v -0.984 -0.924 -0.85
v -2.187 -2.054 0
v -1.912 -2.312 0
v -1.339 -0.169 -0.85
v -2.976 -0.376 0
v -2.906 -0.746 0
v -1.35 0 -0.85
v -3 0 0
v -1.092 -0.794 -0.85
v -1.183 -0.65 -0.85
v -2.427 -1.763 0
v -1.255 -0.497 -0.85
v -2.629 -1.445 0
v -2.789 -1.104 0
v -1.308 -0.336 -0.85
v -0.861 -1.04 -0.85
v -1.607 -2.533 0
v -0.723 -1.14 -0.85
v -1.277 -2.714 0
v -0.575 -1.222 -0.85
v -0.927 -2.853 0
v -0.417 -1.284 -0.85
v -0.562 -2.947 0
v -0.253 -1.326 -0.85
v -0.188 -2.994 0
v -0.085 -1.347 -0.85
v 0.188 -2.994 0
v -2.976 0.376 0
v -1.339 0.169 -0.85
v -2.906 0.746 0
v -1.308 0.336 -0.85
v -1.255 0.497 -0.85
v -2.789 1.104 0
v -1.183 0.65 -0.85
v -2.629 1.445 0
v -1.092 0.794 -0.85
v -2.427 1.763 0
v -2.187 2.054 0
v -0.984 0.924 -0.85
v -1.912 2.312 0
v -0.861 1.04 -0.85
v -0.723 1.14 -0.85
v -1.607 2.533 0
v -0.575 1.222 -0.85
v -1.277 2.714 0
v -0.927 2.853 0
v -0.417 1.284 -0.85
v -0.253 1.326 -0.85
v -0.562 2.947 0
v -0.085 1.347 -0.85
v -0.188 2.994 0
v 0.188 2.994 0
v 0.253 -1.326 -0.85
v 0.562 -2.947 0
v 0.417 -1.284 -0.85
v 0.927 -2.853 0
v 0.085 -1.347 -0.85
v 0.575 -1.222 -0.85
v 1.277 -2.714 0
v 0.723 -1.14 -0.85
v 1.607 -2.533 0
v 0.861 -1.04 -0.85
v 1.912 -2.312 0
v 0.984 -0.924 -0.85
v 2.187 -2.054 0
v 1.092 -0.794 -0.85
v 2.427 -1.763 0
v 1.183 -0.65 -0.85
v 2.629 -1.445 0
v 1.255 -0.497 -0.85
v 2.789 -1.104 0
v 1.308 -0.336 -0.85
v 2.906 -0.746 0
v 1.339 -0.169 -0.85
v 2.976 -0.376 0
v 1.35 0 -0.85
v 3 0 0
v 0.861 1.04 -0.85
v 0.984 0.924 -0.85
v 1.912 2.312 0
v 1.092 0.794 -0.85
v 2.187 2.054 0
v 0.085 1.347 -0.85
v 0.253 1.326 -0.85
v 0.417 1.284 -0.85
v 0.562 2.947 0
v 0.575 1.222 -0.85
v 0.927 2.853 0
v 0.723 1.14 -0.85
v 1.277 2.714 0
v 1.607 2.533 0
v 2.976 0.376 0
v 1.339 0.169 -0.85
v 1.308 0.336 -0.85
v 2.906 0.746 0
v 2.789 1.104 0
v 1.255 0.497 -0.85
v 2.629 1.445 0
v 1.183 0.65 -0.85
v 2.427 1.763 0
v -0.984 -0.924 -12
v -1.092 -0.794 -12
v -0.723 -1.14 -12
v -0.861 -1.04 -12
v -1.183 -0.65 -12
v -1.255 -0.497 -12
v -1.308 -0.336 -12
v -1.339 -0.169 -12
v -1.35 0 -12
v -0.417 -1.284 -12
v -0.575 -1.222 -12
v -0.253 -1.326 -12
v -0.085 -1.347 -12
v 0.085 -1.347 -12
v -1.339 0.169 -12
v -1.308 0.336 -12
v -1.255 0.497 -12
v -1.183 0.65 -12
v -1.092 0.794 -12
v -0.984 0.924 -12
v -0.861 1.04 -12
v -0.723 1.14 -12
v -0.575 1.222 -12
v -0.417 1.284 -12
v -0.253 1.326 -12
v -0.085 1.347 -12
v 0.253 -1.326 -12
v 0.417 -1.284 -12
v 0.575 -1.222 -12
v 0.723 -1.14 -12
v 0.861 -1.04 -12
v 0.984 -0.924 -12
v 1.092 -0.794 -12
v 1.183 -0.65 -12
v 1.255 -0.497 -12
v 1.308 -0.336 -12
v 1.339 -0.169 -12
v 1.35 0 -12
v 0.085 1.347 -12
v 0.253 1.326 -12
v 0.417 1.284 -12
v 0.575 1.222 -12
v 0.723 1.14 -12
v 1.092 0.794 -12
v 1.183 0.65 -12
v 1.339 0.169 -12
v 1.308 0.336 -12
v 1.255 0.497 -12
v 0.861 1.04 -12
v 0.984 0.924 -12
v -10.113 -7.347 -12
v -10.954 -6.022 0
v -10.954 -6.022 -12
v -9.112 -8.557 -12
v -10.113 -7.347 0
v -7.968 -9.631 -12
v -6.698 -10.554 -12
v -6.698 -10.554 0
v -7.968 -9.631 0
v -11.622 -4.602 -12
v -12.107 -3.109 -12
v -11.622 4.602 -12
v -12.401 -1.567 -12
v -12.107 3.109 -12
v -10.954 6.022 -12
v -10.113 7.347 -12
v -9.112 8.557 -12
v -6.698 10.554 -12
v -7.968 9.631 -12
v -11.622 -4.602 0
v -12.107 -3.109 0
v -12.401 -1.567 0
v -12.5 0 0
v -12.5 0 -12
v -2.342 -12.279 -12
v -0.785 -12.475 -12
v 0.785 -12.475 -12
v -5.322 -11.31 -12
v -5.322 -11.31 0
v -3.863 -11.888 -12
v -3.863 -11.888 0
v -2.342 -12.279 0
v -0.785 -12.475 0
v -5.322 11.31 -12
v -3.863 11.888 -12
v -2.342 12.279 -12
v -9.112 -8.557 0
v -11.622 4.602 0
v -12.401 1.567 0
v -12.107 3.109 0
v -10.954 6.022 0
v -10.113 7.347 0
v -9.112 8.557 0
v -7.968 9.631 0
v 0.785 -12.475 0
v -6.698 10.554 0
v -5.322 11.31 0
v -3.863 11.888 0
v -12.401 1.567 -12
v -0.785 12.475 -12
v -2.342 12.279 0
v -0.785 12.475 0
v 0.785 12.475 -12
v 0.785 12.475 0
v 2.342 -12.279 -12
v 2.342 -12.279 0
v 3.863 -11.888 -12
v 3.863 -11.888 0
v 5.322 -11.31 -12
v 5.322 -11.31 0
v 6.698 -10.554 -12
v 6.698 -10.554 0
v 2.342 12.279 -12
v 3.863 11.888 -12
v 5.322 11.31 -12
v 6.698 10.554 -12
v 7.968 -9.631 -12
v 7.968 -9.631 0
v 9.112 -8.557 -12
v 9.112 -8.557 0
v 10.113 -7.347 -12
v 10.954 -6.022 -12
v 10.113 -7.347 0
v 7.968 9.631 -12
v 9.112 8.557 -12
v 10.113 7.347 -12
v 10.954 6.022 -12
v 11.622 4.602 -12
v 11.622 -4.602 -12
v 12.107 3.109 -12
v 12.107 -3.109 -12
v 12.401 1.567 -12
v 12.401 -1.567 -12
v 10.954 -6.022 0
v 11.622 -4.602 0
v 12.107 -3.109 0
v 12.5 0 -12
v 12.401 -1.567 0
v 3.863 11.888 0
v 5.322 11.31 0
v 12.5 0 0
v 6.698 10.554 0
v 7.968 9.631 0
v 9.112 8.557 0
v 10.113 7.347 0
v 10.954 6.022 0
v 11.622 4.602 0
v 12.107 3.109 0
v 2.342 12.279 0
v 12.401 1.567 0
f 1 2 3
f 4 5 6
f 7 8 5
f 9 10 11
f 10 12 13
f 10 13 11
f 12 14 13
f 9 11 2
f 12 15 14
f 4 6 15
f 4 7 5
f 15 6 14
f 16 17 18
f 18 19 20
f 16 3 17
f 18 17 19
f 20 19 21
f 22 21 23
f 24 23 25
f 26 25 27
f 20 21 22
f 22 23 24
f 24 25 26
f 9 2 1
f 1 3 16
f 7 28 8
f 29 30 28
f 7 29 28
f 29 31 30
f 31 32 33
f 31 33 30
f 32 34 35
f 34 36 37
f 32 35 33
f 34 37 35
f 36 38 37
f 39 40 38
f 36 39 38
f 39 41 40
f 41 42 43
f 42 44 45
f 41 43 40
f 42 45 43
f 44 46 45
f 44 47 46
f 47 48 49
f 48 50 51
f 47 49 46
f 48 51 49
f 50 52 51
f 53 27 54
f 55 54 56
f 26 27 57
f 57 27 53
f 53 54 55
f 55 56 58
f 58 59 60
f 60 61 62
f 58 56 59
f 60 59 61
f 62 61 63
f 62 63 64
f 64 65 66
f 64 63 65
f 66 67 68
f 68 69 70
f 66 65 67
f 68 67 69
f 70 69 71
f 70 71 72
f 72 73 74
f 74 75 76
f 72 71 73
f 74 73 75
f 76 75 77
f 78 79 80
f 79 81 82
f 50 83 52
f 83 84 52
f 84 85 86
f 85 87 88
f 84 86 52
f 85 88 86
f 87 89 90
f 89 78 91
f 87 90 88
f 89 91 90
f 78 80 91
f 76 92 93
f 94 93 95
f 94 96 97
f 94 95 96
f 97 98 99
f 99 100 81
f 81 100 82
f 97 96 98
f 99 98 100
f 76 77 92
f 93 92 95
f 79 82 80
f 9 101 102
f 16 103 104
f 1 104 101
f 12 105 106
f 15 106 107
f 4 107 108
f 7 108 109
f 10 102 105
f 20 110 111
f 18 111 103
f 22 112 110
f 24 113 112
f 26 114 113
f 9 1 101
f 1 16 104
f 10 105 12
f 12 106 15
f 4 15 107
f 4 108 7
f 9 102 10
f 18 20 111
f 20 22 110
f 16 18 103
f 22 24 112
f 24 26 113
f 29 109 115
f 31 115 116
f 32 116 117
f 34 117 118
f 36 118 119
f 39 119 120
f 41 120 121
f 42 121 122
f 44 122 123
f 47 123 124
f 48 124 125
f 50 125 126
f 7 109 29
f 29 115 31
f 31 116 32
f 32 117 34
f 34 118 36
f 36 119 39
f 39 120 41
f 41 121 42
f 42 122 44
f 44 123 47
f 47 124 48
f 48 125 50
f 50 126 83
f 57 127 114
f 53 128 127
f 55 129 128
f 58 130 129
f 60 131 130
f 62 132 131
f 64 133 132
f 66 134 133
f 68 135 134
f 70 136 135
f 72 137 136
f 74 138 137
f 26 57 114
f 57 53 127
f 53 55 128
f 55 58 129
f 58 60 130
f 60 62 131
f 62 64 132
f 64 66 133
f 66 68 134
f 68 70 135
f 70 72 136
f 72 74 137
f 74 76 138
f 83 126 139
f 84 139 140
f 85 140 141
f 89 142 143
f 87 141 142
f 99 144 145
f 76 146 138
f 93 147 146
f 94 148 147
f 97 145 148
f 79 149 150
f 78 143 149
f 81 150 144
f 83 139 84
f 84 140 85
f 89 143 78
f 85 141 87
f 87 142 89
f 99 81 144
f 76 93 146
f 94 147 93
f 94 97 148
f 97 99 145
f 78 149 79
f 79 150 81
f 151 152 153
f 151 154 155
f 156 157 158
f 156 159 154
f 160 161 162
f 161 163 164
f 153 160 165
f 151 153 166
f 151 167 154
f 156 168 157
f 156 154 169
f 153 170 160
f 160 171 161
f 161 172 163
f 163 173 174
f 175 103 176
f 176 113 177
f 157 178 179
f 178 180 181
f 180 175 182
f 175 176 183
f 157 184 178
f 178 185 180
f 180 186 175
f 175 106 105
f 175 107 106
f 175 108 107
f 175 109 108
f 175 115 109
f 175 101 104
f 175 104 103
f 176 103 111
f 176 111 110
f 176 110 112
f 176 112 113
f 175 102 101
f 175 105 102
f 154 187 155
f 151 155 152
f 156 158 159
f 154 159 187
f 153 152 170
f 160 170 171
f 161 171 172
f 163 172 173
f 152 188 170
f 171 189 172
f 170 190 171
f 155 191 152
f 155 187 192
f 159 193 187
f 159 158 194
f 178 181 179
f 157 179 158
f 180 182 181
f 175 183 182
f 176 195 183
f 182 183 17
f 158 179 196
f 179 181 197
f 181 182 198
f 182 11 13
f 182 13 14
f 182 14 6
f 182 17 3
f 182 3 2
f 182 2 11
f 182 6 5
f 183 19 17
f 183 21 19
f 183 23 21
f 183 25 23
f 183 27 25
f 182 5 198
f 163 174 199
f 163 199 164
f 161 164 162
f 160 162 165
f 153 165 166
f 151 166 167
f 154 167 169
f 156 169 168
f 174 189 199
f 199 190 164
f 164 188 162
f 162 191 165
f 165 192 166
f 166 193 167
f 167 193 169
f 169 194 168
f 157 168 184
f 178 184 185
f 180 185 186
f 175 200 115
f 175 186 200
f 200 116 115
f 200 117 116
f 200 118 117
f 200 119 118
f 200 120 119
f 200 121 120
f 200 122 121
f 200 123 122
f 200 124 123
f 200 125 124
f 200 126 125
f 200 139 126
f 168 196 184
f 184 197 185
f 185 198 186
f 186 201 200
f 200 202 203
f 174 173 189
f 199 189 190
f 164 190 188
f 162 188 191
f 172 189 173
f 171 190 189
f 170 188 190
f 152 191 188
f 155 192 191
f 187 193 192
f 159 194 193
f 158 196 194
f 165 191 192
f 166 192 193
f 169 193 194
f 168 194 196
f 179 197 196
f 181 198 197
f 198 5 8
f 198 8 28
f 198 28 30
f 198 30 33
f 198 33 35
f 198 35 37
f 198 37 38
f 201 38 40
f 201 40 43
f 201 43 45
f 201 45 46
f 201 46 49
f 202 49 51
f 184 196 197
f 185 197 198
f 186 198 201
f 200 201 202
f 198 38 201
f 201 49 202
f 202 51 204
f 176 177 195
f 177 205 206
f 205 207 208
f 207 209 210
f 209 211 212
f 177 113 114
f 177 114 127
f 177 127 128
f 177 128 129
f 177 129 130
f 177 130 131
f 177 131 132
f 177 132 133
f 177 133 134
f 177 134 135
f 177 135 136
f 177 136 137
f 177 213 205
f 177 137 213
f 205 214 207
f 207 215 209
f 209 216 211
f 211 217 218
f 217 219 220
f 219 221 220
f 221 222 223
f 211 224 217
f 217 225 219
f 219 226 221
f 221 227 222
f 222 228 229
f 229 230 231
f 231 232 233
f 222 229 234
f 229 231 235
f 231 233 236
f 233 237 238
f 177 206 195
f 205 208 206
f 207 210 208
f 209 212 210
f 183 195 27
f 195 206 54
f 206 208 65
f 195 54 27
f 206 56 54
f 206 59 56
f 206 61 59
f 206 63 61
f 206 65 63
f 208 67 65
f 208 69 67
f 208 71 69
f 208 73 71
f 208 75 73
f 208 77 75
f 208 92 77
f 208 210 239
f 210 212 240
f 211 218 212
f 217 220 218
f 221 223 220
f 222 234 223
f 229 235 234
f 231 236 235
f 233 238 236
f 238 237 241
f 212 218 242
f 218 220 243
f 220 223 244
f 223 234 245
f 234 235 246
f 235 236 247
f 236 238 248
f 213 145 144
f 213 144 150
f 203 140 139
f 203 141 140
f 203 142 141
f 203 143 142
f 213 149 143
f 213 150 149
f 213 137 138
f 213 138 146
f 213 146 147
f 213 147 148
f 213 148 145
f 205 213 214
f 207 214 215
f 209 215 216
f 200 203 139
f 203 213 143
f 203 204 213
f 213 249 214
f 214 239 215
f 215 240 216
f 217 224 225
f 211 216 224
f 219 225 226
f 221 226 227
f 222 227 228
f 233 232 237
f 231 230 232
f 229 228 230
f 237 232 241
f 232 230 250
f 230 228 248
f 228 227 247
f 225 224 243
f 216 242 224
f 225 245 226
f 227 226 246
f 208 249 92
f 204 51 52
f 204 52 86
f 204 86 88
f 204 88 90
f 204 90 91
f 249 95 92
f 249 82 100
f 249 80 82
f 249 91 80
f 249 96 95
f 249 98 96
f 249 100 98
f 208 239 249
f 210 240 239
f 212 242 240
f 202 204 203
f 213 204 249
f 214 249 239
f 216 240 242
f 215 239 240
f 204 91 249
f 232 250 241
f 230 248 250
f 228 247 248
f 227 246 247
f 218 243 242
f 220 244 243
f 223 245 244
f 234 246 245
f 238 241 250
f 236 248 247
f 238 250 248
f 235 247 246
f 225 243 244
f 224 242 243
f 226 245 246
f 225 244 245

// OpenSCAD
$fn = 50;

difference() {
	union() {
		translate(v = [0, 0, -12.0]) {
			cylinder(h = 12, r = 12.5);
		}
	}
	union() {
		translate(v = [0, 0, 0]) {
			rotate(a = [0, 0, 0]) {
				difference() {
					union() {
						translate(v = [0, 0, -15.0]) {
							cylinder(h = 15, r = 1.0);
						}
						translate(v = [0, 0, -0.85]) {
							cylinder(h = 0.85, r1 = 1.35, r2 = 3.0);
						}
						translate(v = [0, 0, -15.0]) {
							cylinder(h = 15, r = 1.35);
						}
						translate(v = [0, 0, -15.0]) {
							cylinder(h = 15, r = 1.0);
						}
					}
					union();
				}
			}
		}
	}
}
